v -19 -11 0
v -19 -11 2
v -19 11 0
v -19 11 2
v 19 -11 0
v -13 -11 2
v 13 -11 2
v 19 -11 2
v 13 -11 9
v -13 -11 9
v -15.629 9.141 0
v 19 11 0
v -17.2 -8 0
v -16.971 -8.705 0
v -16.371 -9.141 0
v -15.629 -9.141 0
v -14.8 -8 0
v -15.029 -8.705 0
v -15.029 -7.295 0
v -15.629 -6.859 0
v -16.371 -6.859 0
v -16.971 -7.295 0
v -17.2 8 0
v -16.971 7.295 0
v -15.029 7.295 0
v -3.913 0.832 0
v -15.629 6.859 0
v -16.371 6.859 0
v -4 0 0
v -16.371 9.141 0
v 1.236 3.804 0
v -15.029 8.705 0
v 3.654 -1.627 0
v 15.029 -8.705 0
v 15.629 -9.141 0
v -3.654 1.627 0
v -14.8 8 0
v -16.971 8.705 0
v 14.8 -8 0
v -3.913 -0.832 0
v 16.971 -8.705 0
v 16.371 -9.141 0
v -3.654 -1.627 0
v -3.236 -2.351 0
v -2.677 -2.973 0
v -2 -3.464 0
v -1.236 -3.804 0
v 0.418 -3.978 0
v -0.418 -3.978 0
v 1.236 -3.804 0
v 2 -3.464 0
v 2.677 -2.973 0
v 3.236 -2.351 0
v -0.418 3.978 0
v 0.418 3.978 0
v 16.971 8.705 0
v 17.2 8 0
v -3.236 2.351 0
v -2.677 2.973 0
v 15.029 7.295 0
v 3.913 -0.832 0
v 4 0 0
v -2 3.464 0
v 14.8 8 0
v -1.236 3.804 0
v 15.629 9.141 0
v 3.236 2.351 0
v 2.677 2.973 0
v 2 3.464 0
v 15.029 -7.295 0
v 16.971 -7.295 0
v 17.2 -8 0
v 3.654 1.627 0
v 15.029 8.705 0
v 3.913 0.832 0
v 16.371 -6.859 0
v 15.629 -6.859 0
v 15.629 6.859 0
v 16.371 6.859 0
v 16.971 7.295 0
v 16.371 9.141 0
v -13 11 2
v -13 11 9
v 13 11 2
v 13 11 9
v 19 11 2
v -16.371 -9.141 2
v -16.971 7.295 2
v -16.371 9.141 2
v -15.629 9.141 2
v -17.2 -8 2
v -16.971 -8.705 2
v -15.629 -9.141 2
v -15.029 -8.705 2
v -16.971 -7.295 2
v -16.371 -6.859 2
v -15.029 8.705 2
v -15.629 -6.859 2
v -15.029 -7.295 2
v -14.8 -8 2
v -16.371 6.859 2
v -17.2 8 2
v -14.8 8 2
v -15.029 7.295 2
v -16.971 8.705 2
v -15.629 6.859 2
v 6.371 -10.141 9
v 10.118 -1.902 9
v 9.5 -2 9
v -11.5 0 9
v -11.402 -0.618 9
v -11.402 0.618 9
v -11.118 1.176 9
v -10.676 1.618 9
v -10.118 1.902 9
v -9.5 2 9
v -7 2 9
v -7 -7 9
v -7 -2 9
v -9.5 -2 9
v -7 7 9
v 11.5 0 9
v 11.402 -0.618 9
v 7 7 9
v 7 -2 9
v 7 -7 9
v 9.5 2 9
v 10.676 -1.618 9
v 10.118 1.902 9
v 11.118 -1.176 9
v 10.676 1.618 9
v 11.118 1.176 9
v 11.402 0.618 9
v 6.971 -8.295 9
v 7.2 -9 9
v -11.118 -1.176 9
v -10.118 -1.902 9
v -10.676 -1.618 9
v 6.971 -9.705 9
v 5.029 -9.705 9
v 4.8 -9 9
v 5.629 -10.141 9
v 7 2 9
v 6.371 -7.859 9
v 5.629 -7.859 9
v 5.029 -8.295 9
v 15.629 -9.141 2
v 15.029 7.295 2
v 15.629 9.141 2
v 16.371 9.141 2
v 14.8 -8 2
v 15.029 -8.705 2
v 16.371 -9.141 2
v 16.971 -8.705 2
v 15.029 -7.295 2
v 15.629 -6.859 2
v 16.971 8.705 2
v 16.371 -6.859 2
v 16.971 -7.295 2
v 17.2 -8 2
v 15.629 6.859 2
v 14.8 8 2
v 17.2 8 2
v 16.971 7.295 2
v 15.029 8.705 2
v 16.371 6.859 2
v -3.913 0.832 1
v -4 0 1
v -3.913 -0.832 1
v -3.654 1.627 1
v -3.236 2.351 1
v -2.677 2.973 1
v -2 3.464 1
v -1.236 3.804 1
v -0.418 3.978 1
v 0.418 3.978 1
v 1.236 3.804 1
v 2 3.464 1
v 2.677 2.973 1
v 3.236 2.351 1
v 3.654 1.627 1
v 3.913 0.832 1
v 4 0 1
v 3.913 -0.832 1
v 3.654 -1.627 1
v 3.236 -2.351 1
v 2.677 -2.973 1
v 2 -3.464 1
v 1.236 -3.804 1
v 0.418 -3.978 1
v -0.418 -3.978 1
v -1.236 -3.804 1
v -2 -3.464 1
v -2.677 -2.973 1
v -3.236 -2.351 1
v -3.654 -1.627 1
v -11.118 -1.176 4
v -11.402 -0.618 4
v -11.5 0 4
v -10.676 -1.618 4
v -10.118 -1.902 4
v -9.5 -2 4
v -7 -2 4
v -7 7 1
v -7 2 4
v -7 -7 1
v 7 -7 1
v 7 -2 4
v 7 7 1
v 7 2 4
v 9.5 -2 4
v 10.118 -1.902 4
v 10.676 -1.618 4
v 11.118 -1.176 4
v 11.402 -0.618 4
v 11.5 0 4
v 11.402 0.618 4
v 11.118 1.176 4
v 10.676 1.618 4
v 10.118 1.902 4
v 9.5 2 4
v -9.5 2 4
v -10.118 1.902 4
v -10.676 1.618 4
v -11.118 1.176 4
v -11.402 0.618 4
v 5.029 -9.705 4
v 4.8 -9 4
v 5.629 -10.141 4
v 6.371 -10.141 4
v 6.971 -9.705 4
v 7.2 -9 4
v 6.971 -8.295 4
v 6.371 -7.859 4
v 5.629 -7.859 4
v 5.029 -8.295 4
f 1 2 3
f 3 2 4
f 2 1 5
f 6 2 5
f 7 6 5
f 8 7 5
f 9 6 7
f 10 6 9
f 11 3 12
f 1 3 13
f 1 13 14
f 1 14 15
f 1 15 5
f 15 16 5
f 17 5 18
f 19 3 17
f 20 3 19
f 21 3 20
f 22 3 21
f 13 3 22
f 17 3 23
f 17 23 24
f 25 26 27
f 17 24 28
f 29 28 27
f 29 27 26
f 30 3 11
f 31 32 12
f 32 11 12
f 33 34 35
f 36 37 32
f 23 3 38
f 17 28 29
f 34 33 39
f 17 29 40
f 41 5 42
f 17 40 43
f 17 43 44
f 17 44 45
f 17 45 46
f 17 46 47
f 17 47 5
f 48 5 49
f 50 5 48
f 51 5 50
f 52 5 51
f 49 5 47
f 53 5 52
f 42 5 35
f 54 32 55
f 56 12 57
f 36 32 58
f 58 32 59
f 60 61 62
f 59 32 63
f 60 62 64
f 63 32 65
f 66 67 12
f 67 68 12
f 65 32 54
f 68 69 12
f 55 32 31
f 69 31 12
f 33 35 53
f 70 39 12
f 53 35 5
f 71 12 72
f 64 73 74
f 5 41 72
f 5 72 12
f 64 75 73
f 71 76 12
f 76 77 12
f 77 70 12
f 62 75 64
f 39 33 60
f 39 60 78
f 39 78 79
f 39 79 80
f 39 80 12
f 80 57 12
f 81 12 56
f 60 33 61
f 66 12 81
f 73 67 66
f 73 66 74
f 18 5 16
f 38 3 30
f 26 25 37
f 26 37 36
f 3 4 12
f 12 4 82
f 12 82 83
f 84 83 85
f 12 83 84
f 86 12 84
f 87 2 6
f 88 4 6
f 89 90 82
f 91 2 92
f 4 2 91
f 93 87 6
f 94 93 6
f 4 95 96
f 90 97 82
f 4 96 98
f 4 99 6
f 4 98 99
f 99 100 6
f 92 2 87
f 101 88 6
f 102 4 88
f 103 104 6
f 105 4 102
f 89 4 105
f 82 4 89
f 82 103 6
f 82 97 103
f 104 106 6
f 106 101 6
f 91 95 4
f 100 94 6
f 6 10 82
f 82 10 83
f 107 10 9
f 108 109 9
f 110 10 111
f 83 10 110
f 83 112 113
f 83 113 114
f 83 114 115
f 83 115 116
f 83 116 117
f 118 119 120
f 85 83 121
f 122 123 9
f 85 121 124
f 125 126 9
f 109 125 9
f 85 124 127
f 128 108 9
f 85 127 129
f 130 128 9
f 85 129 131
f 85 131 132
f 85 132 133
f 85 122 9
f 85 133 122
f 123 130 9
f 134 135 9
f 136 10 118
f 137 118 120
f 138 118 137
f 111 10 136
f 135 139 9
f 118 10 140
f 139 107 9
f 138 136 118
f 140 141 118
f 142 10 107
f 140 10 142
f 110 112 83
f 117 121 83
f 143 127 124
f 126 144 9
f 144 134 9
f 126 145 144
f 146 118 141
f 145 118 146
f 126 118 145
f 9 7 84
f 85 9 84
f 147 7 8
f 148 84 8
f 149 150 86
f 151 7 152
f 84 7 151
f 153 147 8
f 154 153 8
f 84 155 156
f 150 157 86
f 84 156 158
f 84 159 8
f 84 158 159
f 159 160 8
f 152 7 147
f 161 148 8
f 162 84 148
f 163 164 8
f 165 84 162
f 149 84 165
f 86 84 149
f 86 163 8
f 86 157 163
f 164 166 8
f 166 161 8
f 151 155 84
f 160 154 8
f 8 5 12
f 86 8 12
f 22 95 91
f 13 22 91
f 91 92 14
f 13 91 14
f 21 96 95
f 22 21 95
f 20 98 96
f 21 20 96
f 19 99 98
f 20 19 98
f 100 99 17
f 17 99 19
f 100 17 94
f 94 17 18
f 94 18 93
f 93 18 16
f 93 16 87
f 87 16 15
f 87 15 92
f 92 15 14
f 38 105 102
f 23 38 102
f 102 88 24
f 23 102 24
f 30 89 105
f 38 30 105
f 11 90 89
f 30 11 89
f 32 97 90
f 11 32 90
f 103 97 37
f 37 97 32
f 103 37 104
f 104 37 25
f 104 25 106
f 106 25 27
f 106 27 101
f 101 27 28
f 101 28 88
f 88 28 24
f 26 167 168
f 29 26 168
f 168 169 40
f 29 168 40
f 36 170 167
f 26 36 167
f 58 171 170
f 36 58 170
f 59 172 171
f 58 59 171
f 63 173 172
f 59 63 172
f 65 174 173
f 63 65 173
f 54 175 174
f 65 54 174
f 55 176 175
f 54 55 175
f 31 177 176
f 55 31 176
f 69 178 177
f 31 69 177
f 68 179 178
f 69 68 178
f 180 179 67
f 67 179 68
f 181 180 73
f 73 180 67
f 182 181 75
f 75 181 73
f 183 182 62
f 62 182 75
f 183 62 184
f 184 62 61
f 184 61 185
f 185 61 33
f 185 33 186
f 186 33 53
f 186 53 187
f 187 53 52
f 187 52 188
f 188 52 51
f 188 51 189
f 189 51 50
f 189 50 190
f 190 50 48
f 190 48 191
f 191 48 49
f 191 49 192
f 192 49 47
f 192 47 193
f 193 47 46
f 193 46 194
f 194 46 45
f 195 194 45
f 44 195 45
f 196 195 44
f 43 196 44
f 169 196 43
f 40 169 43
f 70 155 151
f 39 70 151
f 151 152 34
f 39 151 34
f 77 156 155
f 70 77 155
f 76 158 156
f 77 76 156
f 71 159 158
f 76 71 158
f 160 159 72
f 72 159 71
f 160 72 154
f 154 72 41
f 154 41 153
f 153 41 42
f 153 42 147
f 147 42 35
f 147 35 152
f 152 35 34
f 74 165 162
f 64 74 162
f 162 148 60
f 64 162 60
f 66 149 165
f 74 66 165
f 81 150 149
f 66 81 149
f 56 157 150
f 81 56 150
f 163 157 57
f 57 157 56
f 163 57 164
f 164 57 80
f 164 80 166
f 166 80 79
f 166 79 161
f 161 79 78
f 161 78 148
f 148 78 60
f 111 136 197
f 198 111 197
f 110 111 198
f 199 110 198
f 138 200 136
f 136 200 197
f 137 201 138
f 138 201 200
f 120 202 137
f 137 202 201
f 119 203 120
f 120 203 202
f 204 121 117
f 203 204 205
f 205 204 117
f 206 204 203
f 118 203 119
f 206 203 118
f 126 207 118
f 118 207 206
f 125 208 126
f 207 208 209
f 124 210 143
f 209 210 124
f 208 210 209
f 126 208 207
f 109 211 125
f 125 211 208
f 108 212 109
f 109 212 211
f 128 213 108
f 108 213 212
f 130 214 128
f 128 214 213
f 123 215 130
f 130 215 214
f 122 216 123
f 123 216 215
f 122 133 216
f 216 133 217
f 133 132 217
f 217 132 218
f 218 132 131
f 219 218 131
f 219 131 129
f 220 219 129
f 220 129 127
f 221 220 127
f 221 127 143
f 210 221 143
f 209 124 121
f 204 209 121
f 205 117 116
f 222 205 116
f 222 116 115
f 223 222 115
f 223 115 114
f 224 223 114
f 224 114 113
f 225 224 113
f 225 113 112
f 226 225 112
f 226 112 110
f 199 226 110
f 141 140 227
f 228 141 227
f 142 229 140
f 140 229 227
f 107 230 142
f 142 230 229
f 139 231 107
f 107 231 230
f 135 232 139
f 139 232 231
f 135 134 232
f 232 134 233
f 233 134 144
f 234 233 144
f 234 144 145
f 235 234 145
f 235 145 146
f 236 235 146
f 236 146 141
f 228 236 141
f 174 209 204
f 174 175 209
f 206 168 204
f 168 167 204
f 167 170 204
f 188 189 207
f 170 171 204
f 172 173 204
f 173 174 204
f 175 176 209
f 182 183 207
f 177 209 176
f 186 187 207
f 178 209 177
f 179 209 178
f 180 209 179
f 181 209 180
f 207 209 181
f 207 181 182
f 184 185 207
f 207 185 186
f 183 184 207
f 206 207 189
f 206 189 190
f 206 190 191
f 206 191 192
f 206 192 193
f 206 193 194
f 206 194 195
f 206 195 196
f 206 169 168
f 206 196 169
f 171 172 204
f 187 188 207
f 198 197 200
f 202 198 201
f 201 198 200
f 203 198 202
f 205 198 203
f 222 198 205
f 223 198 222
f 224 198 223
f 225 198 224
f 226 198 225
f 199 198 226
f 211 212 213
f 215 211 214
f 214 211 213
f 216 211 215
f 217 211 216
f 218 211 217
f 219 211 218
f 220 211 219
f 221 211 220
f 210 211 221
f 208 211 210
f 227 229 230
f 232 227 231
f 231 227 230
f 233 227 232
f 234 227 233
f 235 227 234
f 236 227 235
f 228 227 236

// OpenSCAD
difference(){
union(){
	translate([-19,-11,0])cube([38,22,2]);
	translate([-13,-11,0])cube([26,22,9]);
}
	translate([-7,-7,1])cube([14,14,30]);
	cylinder(r=4,h=30,$fn=30,center=true);
	hull(){
	translate([9.5,0,4])cylinder(r=2,h=30,$fn=20);
	translate([-9.5,0,4])cylinder(r=2,h=30,$fn=20);	
	}
	translate([6,-9,4])cylinder(r=1.2,h=30,$fn=10);
	translate([16,-8,-1])cylinder(r=1.2,h=30,$fn=10);
	translate([16,8,-1])cylinder(r=1.2,h=30,$fn=10);
	translate([-16,-8,-1])cylinder(r=1.2,h=30,$fn=10);
	translate([-16,8,-1])cylinder(r=1.2,h=30,$fn=10);

}
